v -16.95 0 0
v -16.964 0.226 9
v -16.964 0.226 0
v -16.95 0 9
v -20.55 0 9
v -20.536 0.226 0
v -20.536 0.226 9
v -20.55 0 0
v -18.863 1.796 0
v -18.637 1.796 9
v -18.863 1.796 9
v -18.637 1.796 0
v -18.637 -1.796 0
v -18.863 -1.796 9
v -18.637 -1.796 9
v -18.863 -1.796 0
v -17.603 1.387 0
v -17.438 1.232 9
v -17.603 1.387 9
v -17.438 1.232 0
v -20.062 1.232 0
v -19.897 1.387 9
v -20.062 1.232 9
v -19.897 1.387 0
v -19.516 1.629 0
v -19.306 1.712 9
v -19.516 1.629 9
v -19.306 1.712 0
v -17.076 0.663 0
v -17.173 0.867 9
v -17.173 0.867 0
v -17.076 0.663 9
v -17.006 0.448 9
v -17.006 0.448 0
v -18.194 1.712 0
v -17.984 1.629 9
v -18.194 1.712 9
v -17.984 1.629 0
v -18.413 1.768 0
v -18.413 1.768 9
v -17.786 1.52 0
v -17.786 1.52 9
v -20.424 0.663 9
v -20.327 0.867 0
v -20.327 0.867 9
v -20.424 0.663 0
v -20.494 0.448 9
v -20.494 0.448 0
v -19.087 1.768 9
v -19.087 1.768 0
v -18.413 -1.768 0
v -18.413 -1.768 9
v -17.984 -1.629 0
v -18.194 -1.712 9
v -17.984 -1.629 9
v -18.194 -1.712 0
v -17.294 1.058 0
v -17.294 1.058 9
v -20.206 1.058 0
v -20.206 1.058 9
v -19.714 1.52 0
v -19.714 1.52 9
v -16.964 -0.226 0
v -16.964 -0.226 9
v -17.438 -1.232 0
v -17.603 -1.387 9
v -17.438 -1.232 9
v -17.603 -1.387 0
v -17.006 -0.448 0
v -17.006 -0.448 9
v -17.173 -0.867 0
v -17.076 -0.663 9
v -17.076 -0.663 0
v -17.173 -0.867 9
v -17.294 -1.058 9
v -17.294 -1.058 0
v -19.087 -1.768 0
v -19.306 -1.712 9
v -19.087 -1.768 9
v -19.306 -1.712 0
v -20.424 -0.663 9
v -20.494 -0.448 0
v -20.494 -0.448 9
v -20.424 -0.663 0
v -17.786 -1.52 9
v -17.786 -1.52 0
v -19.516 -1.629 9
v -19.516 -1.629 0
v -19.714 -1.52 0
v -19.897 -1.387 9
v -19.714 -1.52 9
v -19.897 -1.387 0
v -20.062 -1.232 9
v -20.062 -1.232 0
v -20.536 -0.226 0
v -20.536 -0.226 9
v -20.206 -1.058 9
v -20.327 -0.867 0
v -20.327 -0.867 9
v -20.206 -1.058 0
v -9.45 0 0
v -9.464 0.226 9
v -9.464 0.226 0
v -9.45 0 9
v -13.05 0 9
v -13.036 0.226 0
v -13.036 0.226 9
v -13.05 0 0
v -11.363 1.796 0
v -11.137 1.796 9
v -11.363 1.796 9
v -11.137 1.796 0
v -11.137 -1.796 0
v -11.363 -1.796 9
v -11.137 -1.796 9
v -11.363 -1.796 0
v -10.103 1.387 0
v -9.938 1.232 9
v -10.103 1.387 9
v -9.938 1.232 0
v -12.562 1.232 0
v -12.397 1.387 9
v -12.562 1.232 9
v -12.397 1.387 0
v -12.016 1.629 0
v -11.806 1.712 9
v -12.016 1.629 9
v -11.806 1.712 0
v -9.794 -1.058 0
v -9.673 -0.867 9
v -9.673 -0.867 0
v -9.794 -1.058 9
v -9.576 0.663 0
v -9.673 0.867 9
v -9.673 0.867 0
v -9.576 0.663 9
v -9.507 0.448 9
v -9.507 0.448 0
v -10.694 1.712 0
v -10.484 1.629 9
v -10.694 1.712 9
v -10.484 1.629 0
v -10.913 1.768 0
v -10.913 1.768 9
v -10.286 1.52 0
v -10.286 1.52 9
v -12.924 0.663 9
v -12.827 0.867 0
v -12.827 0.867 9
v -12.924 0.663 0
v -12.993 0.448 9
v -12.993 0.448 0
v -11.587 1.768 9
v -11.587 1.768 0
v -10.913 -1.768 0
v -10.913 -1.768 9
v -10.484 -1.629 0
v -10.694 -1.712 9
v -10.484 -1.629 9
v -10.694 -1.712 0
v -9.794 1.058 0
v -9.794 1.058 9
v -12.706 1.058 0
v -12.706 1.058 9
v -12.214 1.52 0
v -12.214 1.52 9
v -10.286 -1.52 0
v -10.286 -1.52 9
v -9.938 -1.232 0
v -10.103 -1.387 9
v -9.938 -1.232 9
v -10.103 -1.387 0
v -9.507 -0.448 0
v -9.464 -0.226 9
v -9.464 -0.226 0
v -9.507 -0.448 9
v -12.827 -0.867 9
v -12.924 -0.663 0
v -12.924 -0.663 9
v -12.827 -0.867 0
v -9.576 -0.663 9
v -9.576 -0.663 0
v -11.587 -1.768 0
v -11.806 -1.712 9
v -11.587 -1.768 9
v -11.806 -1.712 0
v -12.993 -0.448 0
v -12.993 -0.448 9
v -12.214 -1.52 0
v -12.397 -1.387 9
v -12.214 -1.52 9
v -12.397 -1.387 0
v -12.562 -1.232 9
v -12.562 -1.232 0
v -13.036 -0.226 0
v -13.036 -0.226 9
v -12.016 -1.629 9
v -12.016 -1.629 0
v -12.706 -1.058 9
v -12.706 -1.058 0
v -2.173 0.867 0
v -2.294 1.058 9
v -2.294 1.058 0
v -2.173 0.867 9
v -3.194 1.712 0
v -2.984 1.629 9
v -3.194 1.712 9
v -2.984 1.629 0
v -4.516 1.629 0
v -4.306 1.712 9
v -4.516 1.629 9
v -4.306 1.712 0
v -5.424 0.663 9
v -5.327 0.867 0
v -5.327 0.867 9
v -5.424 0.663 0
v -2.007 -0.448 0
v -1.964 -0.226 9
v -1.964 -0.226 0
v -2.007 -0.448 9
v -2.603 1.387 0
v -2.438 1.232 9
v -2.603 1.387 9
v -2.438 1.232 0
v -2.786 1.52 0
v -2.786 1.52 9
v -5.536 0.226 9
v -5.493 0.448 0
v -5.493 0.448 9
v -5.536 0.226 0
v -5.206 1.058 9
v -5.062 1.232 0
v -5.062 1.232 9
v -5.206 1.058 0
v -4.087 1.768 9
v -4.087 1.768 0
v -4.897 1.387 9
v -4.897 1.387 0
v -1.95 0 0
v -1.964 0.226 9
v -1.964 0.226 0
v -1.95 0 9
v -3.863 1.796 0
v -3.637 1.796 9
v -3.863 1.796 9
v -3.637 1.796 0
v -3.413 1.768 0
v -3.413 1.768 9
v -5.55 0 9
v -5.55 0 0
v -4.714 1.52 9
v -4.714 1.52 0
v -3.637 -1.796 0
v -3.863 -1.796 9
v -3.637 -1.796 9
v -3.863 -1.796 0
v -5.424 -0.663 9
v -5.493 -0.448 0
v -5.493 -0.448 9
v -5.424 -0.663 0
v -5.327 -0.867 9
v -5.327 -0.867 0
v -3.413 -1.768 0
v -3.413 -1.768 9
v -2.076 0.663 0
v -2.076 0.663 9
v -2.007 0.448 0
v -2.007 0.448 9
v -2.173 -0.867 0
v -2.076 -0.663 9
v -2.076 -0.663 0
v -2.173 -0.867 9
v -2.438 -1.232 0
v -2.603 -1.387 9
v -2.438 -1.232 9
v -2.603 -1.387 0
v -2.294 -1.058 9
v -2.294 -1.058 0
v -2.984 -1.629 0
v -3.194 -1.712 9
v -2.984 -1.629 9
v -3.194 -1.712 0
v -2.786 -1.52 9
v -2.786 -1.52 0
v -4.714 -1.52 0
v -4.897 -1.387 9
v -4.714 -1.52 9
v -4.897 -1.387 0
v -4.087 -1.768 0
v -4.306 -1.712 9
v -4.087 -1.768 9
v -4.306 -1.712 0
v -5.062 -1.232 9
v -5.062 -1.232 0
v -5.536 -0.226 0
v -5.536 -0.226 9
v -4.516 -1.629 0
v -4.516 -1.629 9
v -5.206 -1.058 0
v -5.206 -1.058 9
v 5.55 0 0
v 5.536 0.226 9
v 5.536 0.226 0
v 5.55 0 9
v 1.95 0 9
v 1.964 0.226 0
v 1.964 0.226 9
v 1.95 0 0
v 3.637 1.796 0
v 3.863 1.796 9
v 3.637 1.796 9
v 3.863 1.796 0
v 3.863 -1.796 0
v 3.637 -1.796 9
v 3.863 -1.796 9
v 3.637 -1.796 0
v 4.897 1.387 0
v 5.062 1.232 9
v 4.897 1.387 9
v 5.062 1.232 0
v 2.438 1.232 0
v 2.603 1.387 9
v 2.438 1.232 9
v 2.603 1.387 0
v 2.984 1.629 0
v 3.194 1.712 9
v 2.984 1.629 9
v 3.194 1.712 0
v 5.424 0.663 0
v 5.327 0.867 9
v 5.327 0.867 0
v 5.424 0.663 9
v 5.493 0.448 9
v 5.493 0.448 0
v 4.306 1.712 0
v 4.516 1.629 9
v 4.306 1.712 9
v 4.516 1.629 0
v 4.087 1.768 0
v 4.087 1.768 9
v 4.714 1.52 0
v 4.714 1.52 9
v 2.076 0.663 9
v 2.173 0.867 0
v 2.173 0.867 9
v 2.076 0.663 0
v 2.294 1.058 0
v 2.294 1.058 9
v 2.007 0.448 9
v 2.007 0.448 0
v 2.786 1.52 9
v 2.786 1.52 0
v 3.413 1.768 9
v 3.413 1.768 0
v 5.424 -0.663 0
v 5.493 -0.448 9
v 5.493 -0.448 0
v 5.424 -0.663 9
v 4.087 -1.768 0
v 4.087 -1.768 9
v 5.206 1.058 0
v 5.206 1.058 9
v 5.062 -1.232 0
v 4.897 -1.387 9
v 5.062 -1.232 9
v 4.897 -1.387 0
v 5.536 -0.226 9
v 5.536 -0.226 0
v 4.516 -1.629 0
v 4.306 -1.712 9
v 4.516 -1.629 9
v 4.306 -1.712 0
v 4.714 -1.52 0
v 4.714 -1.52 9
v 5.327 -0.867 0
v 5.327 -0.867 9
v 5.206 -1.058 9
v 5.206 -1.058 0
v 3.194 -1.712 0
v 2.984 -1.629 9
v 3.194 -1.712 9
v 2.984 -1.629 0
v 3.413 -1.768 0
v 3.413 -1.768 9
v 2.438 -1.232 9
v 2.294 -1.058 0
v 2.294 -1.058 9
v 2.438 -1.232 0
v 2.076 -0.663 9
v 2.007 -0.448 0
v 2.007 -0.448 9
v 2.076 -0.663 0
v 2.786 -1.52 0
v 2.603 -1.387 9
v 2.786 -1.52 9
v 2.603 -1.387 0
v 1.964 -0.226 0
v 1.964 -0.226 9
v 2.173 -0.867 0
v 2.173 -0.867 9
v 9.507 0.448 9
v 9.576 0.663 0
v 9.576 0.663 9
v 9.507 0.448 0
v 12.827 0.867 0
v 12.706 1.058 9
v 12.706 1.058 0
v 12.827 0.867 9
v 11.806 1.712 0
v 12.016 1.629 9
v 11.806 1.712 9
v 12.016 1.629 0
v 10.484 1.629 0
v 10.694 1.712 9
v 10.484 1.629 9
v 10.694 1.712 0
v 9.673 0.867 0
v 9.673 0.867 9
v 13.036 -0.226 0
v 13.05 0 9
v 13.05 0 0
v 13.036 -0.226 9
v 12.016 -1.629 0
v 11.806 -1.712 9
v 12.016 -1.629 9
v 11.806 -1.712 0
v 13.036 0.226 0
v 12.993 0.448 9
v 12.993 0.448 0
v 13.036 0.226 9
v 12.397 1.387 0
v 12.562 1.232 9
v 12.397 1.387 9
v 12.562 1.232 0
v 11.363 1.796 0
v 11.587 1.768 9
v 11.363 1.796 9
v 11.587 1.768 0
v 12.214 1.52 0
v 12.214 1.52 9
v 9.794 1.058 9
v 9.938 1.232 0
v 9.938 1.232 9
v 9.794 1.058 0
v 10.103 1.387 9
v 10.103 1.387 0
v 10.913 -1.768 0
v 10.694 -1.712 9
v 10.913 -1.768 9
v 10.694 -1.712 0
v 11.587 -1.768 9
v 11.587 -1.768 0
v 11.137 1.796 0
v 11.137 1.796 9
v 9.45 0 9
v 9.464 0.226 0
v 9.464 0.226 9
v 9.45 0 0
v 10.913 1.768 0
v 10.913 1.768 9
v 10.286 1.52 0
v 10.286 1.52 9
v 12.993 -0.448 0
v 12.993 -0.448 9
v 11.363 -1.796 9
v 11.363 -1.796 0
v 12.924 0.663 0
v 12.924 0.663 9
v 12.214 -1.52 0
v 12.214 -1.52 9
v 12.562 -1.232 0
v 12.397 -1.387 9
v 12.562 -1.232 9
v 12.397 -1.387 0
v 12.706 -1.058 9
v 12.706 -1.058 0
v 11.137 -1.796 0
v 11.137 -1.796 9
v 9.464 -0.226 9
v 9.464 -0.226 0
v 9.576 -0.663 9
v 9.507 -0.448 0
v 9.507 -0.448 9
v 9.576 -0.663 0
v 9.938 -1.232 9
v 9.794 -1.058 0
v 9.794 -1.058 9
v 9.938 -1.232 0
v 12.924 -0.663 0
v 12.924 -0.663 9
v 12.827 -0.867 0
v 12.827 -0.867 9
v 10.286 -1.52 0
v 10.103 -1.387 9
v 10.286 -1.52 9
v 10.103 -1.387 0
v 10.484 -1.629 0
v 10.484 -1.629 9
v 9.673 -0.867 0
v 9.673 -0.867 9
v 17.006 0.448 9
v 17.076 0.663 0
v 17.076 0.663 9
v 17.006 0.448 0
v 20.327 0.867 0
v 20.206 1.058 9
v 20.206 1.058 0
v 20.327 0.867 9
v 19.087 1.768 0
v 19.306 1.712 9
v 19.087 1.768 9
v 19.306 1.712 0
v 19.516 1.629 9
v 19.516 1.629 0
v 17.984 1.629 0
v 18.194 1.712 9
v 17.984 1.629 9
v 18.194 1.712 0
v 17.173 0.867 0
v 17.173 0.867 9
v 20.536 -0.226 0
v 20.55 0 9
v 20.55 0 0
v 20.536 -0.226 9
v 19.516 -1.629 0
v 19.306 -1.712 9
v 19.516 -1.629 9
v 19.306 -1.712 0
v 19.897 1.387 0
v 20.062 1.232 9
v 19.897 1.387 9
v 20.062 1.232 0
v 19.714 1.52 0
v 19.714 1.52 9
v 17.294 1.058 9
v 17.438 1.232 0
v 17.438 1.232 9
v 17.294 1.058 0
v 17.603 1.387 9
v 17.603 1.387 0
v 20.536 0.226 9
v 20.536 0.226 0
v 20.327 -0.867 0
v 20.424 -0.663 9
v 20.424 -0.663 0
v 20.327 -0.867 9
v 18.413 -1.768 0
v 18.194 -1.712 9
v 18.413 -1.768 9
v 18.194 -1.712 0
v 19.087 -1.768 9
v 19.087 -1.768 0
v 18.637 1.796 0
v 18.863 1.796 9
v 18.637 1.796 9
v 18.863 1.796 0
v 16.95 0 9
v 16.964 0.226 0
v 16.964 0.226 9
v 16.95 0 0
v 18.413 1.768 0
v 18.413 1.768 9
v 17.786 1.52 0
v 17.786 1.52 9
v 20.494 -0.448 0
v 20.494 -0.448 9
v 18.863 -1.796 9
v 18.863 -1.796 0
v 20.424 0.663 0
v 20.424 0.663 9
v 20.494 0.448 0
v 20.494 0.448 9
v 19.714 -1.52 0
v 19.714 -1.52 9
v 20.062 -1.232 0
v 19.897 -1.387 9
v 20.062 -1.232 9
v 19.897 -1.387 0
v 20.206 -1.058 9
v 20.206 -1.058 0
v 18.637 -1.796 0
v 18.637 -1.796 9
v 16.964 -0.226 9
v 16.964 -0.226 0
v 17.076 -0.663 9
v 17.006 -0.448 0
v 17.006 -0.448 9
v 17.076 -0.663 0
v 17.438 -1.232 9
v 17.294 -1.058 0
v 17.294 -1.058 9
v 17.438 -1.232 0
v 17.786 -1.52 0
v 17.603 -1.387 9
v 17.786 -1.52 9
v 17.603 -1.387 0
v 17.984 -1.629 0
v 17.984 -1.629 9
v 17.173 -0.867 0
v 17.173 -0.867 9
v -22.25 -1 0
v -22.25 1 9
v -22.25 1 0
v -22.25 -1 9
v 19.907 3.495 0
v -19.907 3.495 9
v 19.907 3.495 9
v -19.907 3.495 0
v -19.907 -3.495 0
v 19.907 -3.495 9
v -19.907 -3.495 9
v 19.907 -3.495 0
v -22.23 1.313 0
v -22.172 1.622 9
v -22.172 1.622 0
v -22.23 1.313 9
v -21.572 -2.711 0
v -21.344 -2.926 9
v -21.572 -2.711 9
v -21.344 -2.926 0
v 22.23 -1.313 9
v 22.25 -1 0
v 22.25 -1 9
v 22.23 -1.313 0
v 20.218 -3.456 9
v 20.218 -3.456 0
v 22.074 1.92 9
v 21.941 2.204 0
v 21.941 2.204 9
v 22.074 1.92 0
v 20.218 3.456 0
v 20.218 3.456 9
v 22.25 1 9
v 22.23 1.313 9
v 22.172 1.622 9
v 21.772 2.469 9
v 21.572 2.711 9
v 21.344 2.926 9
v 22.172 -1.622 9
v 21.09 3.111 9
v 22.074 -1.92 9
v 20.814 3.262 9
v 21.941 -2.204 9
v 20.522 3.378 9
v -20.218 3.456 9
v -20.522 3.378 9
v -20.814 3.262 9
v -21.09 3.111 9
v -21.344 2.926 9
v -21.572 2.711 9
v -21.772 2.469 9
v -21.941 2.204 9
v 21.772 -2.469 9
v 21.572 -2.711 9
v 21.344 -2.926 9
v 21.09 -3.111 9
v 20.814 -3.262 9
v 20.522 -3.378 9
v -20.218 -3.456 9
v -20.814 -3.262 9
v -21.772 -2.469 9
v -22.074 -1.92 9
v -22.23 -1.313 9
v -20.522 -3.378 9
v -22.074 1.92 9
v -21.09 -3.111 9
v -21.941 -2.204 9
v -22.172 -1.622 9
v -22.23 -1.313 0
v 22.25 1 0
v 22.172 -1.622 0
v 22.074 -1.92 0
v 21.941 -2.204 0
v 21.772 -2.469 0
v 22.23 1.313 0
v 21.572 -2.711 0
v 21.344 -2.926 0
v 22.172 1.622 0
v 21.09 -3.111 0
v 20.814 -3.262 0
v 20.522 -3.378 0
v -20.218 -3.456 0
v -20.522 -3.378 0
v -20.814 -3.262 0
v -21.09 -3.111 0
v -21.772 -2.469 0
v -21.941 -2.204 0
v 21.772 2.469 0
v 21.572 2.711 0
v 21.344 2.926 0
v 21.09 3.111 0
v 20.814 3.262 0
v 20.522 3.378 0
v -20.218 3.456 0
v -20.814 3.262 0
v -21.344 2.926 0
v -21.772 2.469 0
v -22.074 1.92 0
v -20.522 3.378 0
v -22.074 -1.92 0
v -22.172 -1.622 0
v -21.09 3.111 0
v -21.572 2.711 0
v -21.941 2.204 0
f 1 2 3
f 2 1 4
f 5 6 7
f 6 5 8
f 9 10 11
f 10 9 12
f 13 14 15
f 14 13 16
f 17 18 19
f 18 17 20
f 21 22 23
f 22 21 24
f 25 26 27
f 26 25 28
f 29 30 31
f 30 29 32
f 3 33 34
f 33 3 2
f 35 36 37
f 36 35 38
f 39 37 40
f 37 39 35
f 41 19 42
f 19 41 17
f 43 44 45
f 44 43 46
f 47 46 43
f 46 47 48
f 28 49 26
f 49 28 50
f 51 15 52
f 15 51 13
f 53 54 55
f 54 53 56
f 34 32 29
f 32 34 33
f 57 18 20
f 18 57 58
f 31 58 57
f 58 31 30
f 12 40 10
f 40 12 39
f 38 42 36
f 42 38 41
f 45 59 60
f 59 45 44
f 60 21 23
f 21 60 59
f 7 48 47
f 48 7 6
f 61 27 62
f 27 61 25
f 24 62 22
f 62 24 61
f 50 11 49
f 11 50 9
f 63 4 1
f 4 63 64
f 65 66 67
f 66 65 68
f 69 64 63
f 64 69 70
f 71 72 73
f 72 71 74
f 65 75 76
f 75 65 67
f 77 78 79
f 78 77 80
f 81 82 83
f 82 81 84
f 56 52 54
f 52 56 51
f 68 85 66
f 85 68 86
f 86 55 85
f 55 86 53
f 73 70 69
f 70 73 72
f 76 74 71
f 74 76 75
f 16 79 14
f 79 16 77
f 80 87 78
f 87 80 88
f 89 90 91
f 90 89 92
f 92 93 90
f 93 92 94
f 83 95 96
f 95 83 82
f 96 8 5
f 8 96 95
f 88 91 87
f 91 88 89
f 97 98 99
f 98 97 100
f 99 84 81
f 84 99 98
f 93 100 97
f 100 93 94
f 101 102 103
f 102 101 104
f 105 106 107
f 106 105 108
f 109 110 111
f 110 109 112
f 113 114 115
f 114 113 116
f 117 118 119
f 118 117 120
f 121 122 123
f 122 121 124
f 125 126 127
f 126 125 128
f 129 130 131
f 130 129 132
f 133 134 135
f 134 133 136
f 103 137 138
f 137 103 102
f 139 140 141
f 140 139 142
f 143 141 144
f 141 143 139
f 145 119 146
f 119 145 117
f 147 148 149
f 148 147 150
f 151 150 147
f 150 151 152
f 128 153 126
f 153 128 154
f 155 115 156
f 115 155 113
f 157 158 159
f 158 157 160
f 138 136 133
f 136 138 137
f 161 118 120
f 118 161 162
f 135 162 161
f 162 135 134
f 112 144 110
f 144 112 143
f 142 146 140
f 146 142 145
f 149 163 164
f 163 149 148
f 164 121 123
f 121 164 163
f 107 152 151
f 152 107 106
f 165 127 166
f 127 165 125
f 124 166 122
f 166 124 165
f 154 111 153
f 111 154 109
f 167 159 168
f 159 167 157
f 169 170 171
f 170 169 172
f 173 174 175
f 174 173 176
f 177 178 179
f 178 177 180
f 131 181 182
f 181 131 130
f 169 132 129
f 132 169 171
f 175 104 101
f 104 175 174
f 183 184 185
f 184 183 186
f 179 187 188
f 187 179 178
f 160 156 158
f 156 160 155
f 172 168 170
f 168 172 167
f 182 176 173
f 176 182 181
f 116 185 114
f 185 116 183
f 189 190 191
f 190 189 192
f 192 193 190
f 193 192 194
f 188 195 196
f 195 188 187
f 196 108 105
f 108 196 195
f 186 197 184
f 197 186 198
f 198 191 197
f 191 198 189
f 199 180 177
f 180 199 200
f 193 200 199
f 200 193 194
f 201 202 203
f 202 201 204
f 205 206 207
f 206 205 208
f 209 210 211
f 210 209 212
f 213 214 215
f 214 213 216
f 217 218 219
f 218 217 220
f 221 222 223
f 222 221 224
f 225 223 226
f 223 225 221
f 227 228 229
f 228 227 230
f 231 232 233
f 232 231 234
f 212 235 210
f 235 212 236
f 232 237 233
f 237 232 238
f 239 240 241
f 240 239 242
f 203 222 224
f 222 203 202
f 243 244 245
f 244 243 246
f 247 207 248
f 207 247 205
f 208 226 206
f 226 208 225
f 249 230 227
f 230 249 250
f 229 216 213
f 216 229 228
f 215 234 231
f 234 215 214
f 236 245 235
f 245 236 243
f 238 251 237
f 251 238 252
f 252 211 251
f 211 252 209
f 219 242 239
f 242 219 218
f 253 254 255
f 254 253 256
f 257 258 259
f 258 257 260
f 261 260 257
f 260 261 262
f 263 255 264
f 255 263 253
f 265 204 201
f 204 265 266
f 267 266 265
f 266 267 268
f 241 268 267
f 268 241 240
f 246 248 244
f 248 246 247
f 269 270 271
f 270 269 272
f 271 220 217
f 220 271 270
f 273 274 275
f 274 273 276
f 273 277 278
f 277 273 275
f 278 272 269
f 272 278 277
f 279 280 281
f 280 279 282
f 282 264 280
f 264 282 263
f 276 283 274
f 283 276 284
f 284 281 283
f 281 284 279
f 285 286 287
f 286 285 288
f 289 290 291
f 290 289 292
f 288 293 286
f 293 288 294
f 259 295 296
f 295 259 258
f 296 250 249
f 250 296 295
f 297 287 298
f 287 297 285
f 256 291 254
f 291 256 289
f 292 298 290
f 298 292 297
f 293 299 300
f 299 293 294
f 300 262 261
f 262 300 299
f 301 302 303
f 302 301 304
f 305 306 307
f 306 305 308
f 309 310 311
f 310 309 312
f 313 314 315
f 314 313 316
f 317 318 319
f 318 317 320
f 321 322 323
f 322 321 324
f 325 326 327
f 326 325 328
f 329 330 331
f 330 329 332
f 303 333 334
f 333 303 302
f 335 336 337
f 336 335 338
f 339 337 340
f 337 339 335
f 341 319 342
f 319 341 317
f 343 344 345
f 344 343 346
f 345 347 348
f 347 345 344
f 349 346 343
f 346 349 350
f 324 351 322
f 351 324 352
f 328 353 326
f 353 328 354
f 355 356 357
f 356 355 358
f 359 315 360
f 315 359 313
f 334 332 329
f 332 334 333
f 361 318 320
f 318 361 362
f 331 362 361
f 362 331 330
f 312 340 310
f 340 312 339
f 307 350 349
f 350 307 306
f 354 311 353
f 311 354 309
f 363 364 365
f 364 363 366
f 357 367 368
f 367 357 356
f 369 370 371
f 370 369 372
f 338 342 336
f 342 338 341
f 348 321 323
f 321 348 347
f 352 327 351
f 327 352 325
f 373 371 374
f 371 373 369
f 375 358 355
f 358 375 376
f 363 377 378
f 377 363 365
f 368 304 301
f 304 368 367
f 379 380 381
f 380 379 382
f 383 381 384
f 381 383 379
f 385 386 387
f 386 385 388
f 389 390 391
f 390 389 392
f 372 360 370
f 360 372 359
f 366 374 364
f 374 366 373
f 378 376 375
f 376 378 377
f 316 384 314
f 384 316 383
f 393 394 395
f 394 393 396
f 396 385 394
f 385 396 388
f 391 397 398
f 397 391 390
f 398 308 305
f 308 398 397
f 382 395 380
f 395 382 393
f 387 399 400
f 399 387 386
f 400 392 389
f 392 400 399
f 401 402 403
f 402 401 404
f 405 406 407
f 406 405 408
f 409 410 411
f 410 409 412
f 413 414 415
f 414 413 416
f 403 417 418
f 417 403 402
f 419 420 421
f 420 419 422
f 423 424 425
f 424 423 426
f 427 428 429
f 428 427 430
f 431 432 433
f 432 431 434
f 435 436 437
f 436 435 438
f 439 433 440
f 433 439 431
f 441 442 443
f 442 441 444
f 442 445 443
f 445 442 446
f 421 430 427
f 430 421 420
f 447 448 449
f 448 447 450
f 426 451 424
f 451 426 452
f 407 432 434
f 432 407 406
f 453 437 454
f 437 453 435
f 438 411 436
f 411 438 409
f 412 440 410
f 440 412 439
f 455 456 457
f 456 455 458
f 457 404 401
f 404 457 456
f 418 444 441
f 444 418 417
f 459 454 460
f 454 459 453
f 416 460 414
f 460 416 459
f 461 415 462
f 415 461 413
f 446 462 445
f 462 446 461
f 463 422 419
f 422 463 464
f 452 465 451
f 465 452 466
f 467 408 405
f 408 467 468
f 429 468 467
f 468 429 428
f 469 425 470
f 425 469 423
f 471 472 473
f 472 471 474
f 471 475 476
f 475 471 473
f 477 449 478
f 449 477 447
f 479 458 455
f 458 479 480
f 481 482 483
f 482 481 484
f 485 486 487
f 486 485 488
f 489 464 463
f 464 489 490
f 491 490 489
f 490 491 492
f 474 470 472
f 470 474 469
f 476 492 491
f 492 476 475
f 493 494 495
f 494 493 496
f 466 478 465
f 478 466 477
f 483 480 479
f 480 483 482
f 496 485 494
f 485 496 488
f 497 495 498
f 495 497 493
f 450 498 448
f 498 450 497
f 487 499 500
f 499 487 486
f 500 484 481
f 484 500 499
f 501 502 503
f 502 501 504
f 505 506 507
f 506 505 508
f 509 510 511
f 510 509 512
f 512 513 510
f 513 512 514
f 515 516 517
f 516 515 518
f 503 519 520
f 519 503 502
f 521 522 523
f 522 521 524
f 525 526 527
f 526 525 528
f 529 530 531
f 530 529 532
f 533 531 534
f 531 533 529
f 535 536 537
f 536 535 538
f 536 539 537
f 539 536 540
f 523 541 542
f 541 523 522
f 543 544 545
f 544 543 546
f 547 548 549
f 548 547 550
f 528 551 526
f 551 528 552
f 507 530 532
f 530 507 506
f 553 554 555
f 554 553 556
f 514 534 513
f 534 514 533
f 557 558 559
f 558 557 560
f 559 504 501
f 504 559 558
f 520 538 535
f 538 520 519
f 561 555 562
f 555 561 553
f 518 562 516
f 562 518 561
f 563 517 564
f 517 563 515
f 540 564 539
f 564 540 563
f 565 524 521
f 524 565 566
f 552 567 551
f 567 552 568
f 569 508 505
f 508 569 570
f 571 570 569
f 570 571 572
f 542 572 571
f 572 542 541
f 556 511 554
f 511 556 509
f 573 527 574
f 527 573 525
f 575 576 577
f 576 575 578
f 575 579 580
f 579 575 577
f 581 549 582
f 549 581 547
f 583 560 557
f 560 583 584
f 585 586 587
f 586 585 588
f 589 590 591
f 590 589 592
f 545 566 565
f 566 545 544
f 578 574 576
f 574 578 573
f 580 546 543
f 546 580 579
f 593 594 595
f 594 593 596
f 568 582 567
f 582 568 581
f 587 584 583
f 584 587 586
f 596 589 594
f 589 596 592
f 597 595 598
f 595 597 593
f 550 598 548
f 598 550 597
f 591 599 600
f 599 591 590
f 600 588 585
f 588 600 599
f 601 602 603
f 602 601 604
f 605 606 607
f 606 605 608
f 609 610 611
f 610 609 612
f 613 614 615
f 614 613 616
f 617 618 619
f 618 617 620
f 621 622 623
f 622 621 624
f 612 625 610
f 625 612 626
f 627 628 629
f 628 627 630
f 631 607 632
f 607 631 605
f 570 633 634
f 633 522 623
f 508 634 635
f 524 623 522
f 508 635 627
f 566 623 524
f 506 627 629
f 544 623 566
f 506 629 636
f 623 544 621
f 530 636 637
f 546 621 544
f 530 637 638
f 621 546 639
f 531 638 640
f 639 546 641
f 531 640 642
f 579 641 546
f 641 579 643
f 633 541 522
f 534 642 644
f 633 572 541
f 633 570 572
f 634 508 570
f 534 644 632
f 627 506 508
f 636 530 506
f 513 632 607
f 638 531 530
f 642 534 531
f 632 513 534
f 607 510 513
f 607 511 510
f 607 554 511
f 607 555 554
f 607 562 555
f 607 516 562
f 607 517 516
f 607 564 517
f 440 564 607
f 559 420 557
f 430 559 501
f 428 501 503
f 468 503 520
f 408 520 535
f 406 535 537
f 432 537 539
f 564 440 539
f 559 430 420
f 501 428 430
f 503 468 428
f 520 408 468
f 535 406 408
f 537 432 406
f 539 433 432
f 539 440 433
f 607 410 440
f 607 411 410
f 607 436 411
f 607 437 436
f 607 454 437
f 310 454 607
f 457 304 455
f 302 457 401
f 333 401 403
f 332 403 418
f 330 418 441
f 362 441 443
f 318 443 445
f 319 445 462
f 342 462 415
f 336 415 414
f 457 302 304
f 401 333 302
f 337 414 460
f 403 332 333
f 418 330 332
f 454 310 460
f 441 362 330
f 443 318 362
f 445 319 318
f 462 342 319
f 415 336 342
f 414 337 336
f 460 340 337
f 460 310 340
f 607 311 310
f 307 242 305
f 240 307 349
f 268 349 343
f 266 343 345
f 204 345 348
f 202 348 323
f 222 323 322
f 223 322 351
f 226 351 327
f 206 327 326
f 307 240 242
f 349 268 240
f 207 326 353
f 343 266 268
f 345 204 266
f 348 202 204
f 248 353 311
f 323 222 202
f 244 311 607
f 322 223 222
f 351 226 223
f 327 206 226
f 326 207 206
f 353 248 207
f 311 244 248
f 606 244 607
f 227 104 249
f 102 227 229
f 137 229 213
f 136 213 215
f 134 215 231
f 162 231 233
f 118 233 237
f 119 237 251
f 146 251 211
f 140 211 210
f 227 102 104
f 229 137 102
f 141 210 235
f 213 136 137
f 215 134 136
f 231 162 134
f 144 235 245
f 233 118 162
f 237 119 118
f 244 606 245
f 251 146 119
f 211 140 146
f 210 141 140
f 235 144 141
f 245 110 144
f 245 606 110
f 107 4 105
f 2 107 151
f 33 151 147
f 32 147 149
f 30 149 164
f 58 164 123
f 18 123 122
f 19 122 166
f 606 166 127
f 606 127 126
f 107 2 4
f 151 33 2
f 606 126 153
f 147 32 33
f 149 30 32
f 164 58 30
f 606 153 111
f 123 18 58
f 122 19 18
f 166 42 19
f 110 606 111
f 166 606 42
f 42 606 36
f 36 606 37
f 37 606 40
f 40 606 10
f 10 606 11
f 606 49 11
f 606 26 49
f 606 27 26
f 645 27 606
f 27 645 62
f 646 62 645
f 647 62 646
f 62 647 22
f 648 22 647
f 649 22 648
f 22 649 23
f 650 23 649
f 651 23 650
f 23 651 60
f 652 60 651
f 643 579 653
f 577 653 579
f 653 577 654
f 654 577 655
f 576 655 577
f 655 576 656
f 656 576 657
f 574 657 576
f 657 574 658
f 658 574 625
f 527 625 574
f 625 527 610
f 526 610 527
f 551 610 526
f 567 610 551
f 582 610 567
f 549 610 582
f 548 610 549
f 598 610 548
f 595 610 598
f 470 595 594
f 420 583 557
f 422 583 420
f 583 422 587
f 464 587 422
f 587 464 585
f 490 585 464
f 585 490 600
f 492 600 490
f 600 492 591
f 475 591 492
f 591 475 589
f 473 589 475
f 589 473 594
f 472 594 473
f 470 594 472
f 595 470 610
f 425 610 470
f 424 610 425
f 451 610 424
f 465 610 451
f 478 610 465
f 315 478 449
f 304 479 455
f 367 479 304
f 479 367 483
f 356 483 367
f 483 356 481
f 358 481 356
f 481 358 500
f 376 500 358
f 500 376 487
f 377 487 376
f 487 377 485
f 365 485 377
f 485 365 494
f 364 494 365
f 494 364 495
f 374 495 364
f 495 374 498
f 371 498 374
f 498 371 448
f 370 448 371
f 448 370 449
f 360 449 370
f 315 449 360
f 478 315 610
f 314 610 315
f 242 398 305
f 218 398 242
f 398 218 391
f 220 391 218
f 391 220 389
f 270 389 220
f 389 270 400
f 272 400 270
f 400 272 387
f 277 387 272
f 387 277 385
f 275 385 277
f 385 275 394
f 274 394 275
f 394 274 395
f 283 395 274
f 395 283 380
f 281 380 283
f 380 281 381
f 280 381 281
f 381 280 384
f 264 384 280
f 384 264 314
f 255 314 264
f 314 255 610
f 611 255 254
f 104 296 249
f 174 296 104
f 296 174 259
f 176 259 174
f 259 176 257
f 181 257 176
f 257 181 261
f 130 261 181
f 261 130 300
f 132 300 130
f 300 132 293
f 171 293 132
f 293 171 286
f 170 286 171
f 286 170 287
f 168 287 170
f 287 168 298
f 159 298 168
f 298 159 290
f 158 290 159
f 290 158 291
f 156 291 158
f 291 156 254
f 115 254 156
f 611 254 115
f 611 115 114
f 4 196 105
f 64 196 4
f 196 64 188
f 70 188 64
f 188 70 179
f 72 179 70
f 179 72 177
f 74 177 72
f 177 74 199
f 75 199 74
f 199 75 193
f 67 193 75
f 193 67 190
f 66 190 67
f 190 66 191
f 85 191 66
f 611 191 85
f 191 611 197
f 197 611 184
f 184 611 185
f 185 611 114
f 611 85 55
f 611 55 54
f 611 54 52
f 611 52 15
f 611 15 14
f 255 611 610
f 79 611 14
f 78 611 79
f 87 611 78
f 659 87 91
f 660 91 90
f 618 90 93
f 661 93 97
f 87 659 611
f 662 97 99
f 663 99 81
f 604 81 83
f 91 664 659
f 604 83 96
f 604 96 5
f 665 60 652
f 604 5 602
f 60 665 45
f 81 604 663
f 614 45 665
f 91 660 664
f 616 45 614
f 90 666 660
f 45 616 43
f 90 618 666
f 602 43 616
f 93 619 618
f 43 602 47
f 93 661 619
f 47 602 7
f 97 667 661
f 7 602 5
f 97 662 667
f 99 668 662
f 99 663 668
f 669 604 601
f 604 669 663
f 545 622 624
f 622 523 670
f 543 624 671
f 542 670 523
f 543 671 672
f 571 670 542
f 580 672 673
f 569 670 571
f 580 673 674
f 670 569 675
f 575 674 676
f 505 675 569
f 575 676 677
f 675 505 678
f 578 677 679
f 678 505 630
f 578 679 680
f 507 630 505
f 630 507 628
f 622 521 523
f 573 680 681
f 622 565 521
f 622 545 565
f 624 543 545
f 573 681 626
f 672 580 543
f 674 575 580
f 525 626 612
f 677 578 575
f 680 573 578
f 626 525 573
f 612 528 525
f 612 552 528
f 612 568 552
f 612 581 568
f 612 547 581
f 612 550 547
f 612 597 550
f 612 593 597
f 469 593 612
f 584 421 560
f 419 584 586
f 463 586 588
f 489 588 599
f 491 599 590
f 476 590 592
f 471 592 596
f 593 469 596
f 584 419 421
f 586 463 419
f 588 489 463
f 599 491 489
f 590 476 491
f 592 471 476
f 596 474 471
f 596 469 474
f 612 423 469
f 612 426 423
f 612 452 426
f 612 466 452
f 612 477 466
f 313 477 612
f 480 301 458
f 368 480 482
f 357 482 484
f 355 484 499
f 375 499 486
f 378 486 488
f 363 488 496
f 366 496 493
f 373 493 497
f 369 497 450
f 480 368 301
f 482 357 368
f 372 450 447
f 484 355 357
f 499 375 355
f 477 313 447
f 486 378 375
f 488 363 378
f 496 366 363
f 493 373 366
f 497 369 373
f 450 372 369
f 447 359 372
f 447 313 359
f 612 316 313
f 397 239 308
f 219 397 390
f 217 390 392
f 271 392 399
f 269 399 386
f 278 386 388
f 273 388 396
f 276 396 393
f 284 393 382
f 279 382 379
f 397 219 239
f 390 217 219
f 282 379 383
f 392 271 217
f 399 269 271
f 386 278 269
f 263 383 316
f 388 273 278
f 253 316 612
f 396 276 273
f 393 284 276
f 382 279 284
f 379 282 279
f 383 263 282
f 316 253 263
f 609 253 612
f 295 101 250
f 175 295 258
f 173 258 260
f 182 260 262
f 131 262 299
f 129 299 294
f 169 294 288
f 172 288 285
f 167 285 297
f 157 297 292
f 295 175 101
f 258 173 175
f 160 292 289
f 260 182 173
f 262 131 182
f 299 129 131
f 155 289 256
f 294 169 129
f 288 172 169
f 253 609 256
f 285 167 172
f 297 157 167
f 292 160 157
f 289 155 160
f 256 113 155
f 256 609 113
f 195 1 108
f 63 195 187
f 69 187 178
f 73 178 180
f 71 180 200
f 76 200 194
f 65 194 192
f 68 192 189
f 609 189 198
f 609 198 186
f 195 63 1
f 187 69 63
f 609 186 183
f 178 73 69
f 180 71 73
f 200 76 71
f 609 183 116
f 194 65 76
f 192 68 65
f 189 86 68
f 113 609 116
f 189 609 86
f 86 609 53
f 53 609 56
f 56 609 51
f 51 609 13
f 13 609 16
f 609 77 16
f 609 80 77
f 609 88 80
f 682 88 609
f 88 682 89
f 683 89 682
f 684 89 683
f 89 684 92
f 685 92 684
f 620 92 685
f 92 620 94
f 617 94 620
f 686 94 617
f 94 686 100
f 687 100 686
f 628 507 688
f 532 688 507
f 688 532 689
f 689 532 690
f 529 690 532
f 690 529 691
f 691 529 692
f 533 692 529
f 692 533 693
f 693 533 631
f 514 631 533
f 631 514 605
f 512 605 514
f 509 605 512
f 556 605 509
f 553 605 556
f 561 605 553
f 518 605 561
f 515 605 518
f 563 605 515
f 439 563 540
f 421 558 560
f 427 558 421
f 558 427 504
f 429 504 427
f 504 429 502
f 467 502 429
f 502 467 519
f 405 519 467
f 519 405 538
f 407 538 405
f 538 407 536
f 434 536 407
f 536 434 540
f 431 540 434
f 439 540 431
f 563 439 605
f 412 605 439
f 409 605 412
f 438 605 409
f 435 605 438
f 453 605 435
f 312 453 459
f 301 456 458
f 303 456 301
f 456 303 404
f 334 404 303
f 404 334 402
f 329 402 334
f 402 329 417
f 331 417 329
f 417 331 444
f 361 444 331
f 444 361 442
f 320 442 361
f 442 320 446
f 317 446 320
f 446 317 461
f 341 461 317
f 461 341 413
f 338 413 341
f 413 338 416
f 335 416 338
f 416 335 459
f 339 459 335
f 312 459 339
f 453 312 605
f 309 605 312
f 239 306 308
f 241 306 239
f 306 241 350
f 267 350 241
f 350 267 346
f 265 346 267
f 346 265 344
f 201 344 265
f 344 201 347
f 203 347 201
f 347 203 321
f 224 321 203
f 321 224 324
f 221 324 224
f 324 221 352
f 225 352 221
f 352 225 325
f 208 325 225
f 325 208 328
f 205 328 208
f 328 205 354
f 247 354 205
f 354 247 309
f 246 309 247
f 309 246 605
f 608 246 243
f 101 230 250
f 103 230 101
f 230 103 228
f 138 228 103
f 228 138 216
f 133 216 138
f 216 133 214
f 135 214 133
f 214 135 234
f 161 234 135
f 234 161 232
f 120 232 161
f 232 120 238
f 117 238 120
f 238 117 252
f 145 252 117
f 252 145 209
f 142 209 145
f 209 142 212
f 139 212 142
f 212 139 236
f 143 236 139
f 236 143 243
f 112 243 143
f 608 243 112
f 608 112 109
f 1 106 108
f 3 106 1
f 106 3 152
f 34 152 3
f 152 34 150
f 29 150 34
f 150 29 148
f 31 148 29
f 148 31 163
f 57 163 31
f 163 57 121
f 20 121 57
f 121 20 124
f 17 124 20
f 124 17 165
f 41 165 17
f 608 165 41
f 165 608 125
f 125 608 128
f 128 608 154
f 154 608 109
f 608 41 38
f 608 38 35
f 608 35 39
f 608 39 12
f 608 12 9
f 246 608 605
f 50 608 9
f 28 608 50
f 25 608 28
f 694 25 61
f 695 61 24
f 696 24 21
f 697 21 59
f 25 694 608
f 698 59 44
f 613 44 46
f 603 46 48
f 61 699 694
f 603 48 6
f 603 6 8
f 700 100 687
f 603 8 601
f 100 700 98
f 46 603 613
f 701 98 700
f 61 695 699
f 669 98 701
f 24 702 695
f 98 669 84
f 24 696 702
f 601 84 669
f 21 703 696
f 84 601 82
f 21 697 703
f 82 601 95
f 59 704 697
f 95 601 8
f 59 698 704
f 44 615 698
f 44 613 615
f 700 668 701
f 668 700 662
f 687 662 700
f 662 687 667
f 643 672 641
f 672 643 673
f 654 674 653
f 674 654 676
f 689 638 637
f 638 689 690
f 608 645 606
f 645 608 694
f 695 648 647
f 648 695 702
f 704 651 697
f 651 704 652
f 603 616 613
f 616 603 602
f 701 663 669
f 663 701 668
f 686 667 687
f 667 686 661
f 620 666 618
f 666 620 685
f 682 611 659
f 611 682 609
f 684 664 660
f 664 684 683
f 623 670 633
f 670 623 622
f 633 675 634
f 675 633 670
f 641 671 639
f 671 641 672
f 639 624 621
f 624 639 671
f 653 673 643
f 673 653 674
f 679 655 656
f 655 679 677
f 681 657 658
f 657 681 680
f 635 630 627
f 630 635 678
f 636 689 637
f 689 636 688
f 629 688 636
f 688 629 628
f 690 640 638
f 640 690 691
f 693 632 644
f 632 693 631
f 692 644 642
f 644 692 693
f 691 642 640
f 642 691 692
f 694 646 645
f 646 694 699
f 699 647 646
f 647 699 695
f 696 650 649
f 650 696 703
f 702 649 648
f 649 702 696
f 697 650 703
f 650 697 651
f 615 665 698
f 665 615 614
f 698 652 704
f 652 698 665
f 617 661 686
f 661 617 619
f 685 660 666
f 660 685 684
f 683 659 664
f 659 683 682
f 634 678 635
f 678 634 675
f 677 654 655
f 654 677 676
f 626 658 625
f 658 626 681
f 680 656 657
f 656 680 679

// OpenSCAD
$fn = 50;


difference() {
	union() {
		translate(v = [0, 0, 0]) {
			rotate(a = [0, 0, 0]) {
				hull() {
					translate(v = [-19.7500000000, 1.0000000000, 0]) {
						rotate(a = [0, 0, 0]) {
							translate(v = [0, 0, 0]) {
								rotate(a = [0, 0, 0]) {
									cylinder(h = 9, r = 2.5000000000);
								}
							}
						}
					}
					translate(v = [19.7500000000, 1.0000000000, 0]) {
						rotate(a = [0, 0, 0]) {
							translate(v = [0, 0, 0]) {
								rotate(a = [0, 0, 0]) {
									cylinder(h = 9, r = 2.5000000000);
								}
							}
						}
					}
					translate(v = [-19.7500000000, -1.0000000000, 0]) {
						rotate(a = [0, 0, 0]) {
							translate(v = [0, 0, 0]) {
								rotate(a = [0, 0, 0]) {
									cylinder(h = 9, r = 2.5000000000);
								}
							}
						}
					}
					translate(v = [19.7500000000, -1.0000000000, 0]) {
						rotate(a = [0, 0, 0]) {
							translate(v = [0, 0, 0]) {
								rotate(a = [0, 0, 0]) {
									cylinder(h = 9, r = 2.5000000000);
								}
							}
						}
					}
				}
			}
		}
	}
	union() {
		translate(v = [-18.7500000000, 0.0000000000, 0]) {
			rotate(a = [0, 0, 0]) {
				translate(v = [0, 0, -50]) {
					rotate(a = [0, 0, 0]) {
						cylinder(h = 100, r = 1.8000000000);
					}
				}
			}
		}
		translate(v = [-11.2500000000, 0.0000000000, 0]) {
			rotate(a = [0, 0, 0]) {
				translate(v = [0, 0, -50]) {
					rotate(a = [0, 0, 0]) {
						cylinder(h = 100, r = 1.8000000000);
					}
				}
			}
		}
		translate(v = [-3.7500000000, 0.0000000000, 0]) {
			rotate(a = [0, 0, 0]) {
				translate(v = [0, 0, -50]) {
					rotate(a = [0, 0, 0]) {
						cylinder(h = 100, r = 1.8000000000);
					}
				}
			}
		}
		translate(v = [3.7500000000, 0.0000000000, 0]) {
			rotate(a = [0, 0, 0]) {
				translate(v = [0, 0, -50]) {
					rotate(a = [0, 0, 0]) {
						cylinder(h = 100, r = 1.8000000000);
					}
				}
			}
		}
		translate(v = [11.2500000000, 0.0000000000, 0]) {
			rotate(a = [0, 0, 0]) {
				translate(v = [0, 0, -50]) {
					rotate(a = [0, 0, 0]) {
						cylinder(h = 100, r = 1.8000000000);
					}
				}
			}
		}
		translate(v = [18.7500000000, 0.0000000000, 0]) {
			rotate(a = [0, 0, 0]) {
				translate(v = [0, 0, -50]) {
					rotate(a = [0, 0, 0]) {
						cylinder(h = 100, r = 1.8000000000);
					}
				}
			}
		}
	}
}
